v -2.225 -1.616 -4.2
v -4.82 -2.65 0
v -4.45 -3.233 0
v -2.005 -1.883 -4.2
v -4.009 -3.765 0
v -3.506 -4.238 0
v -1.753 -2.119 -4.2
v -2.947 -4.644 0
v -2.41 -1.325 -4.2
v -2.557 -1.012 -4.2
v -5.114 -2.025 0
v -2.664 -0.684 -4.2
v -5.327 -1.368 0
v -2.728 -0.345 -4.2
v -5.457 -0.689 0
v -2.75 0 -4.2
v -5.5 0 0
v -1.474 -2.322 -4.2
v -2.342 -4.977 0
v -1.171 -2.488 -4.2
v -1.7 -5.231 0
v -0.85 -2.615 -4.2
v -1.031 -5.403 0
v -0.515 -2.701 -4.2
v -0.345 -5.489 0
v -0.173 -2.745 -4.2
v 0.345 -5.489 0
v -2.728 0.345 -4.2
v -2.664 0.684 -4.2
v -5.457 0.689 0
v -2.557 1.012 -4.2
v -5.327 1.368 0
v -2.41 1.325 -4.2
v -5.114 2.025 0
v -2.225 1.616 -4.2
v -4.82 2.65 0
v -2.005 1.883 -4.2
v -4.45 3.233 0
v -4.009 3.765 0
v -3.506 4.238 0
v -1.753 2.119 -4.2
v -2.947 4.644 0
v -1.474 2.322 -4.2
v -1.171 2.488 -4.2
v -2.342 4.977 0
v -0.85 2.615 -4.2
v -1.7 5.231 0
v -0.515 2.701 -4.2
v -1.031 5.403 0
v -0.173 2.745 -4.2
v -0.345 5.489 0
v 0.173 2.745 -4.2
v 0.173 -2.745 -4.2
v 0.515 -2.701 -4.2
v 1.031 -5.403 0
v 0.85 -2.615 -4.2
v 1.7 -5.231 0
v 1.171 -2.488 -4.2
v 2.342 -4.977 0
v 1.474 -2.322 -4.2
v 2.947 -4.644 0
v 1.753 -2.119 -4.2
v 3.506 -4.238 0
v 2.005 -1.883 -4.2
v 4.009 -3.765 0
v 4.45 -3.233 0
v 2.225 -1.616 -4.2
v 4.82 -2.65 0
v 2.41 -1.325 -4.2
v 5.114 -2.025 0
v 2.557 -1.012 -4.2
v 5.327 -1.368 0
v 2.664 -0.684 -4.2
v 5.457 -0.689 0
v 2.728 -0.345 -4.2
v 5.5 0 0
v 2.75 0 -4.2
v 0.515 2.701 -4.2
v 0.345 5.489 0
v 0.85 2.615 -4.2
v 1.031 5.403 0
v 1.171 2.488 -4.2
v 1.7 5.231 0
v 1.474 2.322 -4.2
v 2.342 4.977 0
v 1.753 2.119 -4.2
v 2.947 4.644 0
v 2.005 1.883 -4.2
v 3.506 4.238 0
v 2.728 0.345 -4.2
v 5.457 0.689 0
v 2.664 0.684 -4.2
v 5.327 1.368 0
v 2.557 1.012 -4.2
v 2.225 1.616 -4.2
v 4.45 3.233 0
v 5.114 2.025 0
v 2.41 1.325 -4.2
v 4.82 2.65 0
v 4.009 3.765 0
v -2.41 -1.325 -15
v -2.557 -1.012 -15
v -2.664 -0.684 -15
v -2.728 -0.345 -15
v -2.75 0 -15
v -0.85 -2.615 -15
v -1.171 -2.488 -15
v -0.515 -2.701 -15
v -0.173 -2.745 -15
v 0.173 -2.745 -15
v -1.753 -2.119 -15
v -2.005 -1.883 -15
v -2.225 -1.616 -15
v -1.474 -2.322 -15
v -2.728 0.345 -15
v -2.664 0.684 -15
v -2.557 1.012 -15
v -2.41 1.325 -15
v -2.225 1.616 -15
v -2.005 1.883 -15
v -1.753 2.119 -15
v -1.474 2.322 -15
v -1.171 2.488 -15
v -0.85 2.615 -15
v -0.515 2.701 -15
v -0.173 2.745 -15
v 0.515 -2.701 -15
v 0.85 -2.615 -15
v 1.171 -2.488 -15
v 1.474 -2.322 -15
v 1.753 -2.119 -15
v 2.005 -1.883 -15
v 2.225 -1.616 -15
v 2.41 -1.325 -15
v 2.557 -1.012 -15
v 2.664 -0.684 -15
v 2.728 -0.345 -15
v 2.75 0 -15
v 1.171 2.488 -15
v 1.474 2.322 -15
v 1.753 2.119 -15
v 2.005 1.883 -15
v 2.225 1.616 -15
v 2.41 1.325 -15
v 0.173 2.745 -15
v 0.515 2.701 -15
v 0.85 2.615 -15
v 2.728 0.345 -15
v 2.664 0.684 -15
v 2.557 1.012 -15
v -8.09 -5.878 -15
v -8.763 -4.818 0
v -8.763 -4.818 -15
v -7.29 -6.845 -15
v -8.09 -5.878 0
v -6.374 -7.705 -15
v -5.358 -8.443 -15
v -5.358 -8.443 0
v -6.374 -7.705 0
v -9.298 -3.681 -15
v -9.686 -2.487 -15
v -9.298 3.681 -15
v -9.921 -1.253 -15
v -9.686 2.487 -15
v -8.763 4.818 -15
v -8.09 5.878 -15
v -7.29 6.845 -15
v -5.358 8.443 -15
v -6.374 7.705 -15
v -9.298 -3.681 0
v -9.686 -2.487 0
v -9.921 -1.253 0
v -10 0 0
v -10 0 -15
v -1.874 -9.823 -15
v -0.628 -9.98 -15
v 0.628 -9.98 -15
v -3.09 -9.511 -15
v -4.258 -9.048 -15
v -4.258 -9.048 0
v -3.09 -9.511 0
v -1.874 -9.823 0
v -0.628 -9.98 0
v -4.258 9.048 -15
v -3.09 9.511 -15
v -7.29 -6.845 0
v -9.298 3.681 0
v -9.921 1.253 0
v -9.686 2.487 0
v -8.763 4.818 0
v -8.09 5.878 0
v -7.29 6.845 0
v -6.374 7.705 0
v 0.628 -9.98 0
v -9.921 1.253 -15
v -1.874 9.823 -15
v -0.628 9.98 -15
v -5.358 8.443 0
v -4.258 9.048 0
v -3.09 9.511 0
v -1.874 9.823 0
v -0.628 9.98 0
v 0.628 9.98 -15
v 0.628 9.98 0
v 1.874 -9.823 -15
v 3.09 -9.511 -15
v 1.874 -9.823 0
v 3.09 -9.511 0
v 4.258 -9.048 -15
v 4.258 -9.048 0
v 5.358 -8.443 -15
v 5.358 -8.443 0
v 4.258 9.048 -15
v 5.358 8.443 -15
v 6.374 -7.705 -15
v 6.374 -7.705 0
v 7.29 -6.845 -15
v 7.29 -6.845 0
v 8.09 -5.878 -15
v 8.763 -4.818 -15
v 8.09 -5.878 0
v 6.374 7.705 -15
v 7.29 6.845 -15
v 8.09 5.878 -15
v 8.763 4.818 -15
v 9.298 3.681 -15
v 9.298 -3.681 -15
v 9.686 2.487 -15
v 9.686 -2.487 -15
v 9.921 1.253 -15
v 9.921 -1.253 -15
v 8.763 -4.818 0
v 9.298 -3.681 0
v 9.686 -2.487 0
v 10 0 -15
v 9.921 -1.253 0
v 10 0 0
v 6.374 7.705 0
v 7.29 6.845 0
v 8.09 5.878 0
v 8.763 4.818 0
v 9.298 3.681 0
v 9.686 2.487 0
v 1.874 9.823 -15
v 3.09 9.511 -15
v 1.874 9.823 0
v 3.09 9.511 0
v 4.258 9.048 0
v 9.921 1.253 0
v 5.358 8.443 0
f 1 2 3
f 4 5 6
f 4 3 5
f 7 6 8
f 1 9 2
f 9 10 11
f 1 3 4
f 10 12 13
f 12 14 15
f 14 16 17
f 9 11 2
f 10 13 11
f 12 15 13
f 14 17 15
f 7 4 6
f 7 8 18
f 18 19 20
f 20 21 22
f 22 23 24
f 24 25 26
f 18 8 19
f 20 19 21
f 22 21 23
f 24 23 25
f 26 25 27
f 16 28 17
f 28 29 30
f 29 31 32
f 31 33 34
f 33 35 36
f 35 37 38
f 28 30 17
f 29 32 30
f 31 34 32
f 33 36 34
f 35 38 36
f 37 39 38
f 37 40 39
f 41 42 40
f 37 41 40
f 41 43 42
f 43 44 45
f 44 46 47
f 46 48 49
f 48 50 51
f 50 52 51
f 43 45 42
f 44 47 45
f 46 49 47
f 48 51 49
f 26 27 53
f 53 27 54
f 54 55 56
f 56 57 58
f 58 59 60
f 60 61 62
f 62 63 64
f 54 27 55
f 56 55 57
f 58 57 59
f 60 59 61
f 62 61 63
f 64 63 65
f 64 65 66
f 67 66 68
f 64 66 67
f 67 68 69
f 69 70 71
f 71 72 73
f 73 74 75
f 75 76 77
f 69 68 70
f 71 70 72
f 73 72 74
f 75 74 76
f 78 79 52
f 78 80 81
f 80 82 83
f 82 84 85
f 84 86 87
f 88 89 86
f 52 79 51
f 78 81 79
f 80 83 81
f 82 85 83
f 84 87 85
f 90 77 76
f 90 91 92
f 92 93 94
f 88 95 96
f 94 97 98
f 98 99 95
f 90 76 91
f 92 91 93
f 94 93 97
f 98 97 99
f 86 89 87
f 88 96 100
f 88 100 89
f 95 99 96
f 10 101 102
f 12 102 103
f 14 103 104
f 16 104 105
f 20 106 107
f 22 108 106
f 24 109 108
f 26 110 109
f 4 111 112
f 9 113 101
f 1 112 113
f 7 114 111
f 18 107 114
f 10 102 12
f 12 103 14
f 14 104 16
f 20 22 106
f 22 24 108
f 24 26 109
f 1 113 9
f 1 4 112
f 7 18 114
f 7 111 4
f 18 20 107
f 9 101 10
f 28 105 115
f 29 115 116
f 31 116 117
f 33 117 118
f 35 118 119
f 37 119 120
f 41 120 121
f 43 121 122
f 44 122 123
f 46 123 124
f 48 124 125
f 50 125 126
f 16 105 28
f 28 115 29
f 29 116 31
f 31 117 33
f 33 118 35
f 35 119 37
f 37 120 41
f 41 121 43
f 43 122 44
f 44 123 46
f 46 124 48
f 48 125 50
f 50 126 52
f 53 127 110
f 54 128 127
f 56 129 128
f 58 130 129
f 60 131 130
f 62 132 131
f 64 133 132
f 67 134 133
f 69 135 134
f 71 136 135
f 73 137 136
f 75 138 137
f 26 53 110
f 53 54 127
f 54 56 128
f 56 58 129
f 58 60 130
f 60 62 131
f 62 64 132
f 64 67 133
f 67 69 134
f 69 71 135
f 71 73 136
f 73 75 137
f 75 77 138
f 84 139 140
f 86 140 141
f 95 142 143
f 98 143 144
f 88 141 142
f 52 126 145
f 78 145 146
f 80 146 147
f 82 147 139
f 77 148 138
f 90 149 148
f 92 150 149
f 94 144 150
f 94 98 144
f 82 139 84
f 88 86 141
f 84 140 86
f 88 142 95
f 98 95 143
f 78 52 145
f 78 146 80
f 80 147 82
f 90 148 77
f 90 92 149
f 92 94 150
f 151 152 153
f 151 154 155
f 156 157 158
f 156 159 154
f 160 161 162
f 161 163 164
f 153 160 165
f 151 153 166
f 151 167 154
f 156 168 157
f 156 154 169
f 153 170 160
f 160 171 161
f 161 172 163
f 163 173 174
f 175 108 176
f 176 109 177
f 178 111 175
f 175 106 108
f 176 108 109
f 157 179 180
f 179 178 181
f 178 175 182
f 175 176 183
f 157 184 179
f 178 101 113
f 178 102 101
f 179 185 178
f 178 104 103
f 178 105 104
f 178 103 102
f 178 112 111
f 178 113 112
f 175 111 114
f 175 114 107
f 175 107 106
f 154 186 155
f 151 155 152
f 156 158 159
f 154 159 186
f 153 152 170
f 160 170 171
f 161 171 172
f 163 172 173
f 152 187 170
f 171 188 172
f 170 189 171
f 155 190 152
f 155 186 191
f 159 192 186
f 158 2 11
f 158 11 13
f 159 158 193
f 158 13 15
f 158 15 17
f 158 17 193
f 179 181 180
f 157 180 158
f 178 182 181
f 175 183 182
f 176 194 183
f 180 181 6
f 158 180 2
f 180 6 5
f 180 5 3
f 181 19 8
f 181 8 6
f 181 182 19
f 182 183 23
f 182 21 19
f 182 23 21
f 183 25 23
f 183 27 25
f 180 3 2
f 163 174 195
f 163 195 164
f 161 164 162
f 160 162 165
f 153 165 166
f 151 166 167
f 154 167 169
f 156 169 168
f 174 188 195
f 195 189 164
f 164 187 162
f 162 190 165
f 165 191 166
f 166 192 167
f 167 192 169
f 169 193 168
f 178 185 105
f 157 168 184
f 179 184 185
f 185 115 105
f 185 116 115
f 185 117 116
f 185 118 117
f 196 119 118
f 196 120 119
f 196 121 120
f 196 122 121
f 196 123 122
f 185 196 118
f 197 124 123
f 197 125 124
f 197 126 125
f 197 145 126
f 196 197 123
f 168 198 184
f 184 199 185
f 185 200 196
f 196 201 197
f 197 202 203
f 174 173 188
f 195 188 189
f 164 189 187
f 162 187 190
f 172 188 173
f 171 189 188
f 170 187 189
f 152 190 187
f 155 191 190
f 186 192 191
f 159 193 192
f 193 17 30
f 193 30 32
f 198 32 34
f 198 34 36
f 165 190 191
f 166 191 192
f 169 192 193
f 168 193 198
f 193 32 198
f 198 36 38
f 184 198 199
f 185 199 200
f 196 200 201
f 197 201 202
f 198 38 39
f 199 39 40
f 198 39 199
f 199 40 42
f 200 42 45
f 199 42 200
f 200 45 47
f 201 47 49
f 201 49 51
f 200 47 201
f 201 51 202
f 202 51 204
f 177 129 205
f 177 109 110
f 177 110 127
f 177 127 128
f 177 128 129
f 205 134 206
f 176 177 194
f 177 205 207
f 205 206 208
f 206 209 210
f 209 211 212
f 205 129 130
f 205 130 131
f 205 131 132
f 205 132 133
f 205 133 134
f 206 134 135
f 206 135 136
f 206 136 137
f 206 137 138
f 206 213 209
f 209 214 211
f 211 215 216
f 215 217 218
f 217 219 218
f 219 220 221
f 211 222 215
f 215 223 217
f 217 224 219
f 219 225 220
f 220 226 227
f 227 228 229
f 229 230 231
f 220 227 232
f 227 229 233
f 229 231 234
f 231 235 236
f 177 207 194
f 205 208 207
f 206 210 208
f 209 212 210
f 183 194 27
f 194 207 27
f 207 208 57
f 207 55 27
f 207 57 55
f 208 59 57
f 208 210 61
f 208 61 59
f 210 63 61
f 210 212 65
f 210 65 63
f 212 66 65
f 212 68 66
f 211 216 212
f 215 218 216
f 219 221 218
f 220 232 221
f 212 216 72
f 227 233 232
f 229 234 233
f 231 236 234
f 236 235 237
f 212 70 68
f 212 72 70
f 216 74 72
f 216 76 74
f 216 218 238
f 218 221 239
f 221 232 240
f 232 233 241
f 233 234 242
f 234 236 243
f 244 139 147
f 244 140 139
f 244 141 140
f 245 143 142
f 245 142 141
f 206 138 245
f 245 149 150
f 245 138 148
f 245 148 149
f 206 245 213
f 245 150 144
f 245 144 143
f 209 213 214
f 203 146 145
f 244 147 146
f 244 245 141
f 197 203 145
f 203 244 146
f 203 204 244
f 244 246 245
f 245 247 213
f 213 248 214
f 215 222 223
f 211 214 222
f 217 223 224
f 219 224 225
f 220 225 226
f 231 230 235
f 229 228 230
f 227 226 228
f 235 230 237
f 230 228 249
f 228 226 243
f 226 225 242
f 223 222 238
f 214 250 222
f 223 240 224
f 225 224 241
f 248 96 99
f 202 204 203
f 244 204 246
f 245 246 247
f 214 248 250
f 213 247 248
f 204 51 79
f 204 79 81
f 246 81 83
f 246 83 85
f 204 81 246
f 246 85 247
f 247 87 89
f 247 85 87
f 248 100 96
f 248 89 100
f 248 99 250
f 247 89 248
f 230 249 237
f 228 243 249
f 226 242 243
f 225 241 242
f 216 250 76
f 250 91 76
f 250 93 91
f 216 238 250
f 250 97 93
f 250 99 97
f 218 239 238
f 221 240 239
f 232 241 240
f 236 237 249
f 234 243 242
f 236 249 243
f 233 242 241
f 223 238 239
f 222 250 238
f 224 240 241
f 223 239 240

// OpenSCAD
$fn = 50;

difference() {
	union() {
		translate(v = [0, 0, -15.0]) {
			cylinder(h = 15, r = 10.0);
		}
	}
	union() {
		translate(v = [0, 0, 0]) {
			rotate(a = [0, 0, 0]) {
				difference() {
					union() {
						translate(v = [0, 0, -18.0]) {
							cylinder(h = 18, r = 2.25);
						}
						translate(v = [0, 0, -4.2]) {
							cylinder(h = 4.2, r1 = 2.75, r2 = 5.5);
						}
						translate(v = [0, 0, -18.0]) {
							cylinder(h = 18, r = 2.75);
						}
						translate(v = [0, 0, -18.0]) {
							cylinder(h = 18, r = 2.25);
						}
					}
					union();
				}
			}
		}
	}
}
